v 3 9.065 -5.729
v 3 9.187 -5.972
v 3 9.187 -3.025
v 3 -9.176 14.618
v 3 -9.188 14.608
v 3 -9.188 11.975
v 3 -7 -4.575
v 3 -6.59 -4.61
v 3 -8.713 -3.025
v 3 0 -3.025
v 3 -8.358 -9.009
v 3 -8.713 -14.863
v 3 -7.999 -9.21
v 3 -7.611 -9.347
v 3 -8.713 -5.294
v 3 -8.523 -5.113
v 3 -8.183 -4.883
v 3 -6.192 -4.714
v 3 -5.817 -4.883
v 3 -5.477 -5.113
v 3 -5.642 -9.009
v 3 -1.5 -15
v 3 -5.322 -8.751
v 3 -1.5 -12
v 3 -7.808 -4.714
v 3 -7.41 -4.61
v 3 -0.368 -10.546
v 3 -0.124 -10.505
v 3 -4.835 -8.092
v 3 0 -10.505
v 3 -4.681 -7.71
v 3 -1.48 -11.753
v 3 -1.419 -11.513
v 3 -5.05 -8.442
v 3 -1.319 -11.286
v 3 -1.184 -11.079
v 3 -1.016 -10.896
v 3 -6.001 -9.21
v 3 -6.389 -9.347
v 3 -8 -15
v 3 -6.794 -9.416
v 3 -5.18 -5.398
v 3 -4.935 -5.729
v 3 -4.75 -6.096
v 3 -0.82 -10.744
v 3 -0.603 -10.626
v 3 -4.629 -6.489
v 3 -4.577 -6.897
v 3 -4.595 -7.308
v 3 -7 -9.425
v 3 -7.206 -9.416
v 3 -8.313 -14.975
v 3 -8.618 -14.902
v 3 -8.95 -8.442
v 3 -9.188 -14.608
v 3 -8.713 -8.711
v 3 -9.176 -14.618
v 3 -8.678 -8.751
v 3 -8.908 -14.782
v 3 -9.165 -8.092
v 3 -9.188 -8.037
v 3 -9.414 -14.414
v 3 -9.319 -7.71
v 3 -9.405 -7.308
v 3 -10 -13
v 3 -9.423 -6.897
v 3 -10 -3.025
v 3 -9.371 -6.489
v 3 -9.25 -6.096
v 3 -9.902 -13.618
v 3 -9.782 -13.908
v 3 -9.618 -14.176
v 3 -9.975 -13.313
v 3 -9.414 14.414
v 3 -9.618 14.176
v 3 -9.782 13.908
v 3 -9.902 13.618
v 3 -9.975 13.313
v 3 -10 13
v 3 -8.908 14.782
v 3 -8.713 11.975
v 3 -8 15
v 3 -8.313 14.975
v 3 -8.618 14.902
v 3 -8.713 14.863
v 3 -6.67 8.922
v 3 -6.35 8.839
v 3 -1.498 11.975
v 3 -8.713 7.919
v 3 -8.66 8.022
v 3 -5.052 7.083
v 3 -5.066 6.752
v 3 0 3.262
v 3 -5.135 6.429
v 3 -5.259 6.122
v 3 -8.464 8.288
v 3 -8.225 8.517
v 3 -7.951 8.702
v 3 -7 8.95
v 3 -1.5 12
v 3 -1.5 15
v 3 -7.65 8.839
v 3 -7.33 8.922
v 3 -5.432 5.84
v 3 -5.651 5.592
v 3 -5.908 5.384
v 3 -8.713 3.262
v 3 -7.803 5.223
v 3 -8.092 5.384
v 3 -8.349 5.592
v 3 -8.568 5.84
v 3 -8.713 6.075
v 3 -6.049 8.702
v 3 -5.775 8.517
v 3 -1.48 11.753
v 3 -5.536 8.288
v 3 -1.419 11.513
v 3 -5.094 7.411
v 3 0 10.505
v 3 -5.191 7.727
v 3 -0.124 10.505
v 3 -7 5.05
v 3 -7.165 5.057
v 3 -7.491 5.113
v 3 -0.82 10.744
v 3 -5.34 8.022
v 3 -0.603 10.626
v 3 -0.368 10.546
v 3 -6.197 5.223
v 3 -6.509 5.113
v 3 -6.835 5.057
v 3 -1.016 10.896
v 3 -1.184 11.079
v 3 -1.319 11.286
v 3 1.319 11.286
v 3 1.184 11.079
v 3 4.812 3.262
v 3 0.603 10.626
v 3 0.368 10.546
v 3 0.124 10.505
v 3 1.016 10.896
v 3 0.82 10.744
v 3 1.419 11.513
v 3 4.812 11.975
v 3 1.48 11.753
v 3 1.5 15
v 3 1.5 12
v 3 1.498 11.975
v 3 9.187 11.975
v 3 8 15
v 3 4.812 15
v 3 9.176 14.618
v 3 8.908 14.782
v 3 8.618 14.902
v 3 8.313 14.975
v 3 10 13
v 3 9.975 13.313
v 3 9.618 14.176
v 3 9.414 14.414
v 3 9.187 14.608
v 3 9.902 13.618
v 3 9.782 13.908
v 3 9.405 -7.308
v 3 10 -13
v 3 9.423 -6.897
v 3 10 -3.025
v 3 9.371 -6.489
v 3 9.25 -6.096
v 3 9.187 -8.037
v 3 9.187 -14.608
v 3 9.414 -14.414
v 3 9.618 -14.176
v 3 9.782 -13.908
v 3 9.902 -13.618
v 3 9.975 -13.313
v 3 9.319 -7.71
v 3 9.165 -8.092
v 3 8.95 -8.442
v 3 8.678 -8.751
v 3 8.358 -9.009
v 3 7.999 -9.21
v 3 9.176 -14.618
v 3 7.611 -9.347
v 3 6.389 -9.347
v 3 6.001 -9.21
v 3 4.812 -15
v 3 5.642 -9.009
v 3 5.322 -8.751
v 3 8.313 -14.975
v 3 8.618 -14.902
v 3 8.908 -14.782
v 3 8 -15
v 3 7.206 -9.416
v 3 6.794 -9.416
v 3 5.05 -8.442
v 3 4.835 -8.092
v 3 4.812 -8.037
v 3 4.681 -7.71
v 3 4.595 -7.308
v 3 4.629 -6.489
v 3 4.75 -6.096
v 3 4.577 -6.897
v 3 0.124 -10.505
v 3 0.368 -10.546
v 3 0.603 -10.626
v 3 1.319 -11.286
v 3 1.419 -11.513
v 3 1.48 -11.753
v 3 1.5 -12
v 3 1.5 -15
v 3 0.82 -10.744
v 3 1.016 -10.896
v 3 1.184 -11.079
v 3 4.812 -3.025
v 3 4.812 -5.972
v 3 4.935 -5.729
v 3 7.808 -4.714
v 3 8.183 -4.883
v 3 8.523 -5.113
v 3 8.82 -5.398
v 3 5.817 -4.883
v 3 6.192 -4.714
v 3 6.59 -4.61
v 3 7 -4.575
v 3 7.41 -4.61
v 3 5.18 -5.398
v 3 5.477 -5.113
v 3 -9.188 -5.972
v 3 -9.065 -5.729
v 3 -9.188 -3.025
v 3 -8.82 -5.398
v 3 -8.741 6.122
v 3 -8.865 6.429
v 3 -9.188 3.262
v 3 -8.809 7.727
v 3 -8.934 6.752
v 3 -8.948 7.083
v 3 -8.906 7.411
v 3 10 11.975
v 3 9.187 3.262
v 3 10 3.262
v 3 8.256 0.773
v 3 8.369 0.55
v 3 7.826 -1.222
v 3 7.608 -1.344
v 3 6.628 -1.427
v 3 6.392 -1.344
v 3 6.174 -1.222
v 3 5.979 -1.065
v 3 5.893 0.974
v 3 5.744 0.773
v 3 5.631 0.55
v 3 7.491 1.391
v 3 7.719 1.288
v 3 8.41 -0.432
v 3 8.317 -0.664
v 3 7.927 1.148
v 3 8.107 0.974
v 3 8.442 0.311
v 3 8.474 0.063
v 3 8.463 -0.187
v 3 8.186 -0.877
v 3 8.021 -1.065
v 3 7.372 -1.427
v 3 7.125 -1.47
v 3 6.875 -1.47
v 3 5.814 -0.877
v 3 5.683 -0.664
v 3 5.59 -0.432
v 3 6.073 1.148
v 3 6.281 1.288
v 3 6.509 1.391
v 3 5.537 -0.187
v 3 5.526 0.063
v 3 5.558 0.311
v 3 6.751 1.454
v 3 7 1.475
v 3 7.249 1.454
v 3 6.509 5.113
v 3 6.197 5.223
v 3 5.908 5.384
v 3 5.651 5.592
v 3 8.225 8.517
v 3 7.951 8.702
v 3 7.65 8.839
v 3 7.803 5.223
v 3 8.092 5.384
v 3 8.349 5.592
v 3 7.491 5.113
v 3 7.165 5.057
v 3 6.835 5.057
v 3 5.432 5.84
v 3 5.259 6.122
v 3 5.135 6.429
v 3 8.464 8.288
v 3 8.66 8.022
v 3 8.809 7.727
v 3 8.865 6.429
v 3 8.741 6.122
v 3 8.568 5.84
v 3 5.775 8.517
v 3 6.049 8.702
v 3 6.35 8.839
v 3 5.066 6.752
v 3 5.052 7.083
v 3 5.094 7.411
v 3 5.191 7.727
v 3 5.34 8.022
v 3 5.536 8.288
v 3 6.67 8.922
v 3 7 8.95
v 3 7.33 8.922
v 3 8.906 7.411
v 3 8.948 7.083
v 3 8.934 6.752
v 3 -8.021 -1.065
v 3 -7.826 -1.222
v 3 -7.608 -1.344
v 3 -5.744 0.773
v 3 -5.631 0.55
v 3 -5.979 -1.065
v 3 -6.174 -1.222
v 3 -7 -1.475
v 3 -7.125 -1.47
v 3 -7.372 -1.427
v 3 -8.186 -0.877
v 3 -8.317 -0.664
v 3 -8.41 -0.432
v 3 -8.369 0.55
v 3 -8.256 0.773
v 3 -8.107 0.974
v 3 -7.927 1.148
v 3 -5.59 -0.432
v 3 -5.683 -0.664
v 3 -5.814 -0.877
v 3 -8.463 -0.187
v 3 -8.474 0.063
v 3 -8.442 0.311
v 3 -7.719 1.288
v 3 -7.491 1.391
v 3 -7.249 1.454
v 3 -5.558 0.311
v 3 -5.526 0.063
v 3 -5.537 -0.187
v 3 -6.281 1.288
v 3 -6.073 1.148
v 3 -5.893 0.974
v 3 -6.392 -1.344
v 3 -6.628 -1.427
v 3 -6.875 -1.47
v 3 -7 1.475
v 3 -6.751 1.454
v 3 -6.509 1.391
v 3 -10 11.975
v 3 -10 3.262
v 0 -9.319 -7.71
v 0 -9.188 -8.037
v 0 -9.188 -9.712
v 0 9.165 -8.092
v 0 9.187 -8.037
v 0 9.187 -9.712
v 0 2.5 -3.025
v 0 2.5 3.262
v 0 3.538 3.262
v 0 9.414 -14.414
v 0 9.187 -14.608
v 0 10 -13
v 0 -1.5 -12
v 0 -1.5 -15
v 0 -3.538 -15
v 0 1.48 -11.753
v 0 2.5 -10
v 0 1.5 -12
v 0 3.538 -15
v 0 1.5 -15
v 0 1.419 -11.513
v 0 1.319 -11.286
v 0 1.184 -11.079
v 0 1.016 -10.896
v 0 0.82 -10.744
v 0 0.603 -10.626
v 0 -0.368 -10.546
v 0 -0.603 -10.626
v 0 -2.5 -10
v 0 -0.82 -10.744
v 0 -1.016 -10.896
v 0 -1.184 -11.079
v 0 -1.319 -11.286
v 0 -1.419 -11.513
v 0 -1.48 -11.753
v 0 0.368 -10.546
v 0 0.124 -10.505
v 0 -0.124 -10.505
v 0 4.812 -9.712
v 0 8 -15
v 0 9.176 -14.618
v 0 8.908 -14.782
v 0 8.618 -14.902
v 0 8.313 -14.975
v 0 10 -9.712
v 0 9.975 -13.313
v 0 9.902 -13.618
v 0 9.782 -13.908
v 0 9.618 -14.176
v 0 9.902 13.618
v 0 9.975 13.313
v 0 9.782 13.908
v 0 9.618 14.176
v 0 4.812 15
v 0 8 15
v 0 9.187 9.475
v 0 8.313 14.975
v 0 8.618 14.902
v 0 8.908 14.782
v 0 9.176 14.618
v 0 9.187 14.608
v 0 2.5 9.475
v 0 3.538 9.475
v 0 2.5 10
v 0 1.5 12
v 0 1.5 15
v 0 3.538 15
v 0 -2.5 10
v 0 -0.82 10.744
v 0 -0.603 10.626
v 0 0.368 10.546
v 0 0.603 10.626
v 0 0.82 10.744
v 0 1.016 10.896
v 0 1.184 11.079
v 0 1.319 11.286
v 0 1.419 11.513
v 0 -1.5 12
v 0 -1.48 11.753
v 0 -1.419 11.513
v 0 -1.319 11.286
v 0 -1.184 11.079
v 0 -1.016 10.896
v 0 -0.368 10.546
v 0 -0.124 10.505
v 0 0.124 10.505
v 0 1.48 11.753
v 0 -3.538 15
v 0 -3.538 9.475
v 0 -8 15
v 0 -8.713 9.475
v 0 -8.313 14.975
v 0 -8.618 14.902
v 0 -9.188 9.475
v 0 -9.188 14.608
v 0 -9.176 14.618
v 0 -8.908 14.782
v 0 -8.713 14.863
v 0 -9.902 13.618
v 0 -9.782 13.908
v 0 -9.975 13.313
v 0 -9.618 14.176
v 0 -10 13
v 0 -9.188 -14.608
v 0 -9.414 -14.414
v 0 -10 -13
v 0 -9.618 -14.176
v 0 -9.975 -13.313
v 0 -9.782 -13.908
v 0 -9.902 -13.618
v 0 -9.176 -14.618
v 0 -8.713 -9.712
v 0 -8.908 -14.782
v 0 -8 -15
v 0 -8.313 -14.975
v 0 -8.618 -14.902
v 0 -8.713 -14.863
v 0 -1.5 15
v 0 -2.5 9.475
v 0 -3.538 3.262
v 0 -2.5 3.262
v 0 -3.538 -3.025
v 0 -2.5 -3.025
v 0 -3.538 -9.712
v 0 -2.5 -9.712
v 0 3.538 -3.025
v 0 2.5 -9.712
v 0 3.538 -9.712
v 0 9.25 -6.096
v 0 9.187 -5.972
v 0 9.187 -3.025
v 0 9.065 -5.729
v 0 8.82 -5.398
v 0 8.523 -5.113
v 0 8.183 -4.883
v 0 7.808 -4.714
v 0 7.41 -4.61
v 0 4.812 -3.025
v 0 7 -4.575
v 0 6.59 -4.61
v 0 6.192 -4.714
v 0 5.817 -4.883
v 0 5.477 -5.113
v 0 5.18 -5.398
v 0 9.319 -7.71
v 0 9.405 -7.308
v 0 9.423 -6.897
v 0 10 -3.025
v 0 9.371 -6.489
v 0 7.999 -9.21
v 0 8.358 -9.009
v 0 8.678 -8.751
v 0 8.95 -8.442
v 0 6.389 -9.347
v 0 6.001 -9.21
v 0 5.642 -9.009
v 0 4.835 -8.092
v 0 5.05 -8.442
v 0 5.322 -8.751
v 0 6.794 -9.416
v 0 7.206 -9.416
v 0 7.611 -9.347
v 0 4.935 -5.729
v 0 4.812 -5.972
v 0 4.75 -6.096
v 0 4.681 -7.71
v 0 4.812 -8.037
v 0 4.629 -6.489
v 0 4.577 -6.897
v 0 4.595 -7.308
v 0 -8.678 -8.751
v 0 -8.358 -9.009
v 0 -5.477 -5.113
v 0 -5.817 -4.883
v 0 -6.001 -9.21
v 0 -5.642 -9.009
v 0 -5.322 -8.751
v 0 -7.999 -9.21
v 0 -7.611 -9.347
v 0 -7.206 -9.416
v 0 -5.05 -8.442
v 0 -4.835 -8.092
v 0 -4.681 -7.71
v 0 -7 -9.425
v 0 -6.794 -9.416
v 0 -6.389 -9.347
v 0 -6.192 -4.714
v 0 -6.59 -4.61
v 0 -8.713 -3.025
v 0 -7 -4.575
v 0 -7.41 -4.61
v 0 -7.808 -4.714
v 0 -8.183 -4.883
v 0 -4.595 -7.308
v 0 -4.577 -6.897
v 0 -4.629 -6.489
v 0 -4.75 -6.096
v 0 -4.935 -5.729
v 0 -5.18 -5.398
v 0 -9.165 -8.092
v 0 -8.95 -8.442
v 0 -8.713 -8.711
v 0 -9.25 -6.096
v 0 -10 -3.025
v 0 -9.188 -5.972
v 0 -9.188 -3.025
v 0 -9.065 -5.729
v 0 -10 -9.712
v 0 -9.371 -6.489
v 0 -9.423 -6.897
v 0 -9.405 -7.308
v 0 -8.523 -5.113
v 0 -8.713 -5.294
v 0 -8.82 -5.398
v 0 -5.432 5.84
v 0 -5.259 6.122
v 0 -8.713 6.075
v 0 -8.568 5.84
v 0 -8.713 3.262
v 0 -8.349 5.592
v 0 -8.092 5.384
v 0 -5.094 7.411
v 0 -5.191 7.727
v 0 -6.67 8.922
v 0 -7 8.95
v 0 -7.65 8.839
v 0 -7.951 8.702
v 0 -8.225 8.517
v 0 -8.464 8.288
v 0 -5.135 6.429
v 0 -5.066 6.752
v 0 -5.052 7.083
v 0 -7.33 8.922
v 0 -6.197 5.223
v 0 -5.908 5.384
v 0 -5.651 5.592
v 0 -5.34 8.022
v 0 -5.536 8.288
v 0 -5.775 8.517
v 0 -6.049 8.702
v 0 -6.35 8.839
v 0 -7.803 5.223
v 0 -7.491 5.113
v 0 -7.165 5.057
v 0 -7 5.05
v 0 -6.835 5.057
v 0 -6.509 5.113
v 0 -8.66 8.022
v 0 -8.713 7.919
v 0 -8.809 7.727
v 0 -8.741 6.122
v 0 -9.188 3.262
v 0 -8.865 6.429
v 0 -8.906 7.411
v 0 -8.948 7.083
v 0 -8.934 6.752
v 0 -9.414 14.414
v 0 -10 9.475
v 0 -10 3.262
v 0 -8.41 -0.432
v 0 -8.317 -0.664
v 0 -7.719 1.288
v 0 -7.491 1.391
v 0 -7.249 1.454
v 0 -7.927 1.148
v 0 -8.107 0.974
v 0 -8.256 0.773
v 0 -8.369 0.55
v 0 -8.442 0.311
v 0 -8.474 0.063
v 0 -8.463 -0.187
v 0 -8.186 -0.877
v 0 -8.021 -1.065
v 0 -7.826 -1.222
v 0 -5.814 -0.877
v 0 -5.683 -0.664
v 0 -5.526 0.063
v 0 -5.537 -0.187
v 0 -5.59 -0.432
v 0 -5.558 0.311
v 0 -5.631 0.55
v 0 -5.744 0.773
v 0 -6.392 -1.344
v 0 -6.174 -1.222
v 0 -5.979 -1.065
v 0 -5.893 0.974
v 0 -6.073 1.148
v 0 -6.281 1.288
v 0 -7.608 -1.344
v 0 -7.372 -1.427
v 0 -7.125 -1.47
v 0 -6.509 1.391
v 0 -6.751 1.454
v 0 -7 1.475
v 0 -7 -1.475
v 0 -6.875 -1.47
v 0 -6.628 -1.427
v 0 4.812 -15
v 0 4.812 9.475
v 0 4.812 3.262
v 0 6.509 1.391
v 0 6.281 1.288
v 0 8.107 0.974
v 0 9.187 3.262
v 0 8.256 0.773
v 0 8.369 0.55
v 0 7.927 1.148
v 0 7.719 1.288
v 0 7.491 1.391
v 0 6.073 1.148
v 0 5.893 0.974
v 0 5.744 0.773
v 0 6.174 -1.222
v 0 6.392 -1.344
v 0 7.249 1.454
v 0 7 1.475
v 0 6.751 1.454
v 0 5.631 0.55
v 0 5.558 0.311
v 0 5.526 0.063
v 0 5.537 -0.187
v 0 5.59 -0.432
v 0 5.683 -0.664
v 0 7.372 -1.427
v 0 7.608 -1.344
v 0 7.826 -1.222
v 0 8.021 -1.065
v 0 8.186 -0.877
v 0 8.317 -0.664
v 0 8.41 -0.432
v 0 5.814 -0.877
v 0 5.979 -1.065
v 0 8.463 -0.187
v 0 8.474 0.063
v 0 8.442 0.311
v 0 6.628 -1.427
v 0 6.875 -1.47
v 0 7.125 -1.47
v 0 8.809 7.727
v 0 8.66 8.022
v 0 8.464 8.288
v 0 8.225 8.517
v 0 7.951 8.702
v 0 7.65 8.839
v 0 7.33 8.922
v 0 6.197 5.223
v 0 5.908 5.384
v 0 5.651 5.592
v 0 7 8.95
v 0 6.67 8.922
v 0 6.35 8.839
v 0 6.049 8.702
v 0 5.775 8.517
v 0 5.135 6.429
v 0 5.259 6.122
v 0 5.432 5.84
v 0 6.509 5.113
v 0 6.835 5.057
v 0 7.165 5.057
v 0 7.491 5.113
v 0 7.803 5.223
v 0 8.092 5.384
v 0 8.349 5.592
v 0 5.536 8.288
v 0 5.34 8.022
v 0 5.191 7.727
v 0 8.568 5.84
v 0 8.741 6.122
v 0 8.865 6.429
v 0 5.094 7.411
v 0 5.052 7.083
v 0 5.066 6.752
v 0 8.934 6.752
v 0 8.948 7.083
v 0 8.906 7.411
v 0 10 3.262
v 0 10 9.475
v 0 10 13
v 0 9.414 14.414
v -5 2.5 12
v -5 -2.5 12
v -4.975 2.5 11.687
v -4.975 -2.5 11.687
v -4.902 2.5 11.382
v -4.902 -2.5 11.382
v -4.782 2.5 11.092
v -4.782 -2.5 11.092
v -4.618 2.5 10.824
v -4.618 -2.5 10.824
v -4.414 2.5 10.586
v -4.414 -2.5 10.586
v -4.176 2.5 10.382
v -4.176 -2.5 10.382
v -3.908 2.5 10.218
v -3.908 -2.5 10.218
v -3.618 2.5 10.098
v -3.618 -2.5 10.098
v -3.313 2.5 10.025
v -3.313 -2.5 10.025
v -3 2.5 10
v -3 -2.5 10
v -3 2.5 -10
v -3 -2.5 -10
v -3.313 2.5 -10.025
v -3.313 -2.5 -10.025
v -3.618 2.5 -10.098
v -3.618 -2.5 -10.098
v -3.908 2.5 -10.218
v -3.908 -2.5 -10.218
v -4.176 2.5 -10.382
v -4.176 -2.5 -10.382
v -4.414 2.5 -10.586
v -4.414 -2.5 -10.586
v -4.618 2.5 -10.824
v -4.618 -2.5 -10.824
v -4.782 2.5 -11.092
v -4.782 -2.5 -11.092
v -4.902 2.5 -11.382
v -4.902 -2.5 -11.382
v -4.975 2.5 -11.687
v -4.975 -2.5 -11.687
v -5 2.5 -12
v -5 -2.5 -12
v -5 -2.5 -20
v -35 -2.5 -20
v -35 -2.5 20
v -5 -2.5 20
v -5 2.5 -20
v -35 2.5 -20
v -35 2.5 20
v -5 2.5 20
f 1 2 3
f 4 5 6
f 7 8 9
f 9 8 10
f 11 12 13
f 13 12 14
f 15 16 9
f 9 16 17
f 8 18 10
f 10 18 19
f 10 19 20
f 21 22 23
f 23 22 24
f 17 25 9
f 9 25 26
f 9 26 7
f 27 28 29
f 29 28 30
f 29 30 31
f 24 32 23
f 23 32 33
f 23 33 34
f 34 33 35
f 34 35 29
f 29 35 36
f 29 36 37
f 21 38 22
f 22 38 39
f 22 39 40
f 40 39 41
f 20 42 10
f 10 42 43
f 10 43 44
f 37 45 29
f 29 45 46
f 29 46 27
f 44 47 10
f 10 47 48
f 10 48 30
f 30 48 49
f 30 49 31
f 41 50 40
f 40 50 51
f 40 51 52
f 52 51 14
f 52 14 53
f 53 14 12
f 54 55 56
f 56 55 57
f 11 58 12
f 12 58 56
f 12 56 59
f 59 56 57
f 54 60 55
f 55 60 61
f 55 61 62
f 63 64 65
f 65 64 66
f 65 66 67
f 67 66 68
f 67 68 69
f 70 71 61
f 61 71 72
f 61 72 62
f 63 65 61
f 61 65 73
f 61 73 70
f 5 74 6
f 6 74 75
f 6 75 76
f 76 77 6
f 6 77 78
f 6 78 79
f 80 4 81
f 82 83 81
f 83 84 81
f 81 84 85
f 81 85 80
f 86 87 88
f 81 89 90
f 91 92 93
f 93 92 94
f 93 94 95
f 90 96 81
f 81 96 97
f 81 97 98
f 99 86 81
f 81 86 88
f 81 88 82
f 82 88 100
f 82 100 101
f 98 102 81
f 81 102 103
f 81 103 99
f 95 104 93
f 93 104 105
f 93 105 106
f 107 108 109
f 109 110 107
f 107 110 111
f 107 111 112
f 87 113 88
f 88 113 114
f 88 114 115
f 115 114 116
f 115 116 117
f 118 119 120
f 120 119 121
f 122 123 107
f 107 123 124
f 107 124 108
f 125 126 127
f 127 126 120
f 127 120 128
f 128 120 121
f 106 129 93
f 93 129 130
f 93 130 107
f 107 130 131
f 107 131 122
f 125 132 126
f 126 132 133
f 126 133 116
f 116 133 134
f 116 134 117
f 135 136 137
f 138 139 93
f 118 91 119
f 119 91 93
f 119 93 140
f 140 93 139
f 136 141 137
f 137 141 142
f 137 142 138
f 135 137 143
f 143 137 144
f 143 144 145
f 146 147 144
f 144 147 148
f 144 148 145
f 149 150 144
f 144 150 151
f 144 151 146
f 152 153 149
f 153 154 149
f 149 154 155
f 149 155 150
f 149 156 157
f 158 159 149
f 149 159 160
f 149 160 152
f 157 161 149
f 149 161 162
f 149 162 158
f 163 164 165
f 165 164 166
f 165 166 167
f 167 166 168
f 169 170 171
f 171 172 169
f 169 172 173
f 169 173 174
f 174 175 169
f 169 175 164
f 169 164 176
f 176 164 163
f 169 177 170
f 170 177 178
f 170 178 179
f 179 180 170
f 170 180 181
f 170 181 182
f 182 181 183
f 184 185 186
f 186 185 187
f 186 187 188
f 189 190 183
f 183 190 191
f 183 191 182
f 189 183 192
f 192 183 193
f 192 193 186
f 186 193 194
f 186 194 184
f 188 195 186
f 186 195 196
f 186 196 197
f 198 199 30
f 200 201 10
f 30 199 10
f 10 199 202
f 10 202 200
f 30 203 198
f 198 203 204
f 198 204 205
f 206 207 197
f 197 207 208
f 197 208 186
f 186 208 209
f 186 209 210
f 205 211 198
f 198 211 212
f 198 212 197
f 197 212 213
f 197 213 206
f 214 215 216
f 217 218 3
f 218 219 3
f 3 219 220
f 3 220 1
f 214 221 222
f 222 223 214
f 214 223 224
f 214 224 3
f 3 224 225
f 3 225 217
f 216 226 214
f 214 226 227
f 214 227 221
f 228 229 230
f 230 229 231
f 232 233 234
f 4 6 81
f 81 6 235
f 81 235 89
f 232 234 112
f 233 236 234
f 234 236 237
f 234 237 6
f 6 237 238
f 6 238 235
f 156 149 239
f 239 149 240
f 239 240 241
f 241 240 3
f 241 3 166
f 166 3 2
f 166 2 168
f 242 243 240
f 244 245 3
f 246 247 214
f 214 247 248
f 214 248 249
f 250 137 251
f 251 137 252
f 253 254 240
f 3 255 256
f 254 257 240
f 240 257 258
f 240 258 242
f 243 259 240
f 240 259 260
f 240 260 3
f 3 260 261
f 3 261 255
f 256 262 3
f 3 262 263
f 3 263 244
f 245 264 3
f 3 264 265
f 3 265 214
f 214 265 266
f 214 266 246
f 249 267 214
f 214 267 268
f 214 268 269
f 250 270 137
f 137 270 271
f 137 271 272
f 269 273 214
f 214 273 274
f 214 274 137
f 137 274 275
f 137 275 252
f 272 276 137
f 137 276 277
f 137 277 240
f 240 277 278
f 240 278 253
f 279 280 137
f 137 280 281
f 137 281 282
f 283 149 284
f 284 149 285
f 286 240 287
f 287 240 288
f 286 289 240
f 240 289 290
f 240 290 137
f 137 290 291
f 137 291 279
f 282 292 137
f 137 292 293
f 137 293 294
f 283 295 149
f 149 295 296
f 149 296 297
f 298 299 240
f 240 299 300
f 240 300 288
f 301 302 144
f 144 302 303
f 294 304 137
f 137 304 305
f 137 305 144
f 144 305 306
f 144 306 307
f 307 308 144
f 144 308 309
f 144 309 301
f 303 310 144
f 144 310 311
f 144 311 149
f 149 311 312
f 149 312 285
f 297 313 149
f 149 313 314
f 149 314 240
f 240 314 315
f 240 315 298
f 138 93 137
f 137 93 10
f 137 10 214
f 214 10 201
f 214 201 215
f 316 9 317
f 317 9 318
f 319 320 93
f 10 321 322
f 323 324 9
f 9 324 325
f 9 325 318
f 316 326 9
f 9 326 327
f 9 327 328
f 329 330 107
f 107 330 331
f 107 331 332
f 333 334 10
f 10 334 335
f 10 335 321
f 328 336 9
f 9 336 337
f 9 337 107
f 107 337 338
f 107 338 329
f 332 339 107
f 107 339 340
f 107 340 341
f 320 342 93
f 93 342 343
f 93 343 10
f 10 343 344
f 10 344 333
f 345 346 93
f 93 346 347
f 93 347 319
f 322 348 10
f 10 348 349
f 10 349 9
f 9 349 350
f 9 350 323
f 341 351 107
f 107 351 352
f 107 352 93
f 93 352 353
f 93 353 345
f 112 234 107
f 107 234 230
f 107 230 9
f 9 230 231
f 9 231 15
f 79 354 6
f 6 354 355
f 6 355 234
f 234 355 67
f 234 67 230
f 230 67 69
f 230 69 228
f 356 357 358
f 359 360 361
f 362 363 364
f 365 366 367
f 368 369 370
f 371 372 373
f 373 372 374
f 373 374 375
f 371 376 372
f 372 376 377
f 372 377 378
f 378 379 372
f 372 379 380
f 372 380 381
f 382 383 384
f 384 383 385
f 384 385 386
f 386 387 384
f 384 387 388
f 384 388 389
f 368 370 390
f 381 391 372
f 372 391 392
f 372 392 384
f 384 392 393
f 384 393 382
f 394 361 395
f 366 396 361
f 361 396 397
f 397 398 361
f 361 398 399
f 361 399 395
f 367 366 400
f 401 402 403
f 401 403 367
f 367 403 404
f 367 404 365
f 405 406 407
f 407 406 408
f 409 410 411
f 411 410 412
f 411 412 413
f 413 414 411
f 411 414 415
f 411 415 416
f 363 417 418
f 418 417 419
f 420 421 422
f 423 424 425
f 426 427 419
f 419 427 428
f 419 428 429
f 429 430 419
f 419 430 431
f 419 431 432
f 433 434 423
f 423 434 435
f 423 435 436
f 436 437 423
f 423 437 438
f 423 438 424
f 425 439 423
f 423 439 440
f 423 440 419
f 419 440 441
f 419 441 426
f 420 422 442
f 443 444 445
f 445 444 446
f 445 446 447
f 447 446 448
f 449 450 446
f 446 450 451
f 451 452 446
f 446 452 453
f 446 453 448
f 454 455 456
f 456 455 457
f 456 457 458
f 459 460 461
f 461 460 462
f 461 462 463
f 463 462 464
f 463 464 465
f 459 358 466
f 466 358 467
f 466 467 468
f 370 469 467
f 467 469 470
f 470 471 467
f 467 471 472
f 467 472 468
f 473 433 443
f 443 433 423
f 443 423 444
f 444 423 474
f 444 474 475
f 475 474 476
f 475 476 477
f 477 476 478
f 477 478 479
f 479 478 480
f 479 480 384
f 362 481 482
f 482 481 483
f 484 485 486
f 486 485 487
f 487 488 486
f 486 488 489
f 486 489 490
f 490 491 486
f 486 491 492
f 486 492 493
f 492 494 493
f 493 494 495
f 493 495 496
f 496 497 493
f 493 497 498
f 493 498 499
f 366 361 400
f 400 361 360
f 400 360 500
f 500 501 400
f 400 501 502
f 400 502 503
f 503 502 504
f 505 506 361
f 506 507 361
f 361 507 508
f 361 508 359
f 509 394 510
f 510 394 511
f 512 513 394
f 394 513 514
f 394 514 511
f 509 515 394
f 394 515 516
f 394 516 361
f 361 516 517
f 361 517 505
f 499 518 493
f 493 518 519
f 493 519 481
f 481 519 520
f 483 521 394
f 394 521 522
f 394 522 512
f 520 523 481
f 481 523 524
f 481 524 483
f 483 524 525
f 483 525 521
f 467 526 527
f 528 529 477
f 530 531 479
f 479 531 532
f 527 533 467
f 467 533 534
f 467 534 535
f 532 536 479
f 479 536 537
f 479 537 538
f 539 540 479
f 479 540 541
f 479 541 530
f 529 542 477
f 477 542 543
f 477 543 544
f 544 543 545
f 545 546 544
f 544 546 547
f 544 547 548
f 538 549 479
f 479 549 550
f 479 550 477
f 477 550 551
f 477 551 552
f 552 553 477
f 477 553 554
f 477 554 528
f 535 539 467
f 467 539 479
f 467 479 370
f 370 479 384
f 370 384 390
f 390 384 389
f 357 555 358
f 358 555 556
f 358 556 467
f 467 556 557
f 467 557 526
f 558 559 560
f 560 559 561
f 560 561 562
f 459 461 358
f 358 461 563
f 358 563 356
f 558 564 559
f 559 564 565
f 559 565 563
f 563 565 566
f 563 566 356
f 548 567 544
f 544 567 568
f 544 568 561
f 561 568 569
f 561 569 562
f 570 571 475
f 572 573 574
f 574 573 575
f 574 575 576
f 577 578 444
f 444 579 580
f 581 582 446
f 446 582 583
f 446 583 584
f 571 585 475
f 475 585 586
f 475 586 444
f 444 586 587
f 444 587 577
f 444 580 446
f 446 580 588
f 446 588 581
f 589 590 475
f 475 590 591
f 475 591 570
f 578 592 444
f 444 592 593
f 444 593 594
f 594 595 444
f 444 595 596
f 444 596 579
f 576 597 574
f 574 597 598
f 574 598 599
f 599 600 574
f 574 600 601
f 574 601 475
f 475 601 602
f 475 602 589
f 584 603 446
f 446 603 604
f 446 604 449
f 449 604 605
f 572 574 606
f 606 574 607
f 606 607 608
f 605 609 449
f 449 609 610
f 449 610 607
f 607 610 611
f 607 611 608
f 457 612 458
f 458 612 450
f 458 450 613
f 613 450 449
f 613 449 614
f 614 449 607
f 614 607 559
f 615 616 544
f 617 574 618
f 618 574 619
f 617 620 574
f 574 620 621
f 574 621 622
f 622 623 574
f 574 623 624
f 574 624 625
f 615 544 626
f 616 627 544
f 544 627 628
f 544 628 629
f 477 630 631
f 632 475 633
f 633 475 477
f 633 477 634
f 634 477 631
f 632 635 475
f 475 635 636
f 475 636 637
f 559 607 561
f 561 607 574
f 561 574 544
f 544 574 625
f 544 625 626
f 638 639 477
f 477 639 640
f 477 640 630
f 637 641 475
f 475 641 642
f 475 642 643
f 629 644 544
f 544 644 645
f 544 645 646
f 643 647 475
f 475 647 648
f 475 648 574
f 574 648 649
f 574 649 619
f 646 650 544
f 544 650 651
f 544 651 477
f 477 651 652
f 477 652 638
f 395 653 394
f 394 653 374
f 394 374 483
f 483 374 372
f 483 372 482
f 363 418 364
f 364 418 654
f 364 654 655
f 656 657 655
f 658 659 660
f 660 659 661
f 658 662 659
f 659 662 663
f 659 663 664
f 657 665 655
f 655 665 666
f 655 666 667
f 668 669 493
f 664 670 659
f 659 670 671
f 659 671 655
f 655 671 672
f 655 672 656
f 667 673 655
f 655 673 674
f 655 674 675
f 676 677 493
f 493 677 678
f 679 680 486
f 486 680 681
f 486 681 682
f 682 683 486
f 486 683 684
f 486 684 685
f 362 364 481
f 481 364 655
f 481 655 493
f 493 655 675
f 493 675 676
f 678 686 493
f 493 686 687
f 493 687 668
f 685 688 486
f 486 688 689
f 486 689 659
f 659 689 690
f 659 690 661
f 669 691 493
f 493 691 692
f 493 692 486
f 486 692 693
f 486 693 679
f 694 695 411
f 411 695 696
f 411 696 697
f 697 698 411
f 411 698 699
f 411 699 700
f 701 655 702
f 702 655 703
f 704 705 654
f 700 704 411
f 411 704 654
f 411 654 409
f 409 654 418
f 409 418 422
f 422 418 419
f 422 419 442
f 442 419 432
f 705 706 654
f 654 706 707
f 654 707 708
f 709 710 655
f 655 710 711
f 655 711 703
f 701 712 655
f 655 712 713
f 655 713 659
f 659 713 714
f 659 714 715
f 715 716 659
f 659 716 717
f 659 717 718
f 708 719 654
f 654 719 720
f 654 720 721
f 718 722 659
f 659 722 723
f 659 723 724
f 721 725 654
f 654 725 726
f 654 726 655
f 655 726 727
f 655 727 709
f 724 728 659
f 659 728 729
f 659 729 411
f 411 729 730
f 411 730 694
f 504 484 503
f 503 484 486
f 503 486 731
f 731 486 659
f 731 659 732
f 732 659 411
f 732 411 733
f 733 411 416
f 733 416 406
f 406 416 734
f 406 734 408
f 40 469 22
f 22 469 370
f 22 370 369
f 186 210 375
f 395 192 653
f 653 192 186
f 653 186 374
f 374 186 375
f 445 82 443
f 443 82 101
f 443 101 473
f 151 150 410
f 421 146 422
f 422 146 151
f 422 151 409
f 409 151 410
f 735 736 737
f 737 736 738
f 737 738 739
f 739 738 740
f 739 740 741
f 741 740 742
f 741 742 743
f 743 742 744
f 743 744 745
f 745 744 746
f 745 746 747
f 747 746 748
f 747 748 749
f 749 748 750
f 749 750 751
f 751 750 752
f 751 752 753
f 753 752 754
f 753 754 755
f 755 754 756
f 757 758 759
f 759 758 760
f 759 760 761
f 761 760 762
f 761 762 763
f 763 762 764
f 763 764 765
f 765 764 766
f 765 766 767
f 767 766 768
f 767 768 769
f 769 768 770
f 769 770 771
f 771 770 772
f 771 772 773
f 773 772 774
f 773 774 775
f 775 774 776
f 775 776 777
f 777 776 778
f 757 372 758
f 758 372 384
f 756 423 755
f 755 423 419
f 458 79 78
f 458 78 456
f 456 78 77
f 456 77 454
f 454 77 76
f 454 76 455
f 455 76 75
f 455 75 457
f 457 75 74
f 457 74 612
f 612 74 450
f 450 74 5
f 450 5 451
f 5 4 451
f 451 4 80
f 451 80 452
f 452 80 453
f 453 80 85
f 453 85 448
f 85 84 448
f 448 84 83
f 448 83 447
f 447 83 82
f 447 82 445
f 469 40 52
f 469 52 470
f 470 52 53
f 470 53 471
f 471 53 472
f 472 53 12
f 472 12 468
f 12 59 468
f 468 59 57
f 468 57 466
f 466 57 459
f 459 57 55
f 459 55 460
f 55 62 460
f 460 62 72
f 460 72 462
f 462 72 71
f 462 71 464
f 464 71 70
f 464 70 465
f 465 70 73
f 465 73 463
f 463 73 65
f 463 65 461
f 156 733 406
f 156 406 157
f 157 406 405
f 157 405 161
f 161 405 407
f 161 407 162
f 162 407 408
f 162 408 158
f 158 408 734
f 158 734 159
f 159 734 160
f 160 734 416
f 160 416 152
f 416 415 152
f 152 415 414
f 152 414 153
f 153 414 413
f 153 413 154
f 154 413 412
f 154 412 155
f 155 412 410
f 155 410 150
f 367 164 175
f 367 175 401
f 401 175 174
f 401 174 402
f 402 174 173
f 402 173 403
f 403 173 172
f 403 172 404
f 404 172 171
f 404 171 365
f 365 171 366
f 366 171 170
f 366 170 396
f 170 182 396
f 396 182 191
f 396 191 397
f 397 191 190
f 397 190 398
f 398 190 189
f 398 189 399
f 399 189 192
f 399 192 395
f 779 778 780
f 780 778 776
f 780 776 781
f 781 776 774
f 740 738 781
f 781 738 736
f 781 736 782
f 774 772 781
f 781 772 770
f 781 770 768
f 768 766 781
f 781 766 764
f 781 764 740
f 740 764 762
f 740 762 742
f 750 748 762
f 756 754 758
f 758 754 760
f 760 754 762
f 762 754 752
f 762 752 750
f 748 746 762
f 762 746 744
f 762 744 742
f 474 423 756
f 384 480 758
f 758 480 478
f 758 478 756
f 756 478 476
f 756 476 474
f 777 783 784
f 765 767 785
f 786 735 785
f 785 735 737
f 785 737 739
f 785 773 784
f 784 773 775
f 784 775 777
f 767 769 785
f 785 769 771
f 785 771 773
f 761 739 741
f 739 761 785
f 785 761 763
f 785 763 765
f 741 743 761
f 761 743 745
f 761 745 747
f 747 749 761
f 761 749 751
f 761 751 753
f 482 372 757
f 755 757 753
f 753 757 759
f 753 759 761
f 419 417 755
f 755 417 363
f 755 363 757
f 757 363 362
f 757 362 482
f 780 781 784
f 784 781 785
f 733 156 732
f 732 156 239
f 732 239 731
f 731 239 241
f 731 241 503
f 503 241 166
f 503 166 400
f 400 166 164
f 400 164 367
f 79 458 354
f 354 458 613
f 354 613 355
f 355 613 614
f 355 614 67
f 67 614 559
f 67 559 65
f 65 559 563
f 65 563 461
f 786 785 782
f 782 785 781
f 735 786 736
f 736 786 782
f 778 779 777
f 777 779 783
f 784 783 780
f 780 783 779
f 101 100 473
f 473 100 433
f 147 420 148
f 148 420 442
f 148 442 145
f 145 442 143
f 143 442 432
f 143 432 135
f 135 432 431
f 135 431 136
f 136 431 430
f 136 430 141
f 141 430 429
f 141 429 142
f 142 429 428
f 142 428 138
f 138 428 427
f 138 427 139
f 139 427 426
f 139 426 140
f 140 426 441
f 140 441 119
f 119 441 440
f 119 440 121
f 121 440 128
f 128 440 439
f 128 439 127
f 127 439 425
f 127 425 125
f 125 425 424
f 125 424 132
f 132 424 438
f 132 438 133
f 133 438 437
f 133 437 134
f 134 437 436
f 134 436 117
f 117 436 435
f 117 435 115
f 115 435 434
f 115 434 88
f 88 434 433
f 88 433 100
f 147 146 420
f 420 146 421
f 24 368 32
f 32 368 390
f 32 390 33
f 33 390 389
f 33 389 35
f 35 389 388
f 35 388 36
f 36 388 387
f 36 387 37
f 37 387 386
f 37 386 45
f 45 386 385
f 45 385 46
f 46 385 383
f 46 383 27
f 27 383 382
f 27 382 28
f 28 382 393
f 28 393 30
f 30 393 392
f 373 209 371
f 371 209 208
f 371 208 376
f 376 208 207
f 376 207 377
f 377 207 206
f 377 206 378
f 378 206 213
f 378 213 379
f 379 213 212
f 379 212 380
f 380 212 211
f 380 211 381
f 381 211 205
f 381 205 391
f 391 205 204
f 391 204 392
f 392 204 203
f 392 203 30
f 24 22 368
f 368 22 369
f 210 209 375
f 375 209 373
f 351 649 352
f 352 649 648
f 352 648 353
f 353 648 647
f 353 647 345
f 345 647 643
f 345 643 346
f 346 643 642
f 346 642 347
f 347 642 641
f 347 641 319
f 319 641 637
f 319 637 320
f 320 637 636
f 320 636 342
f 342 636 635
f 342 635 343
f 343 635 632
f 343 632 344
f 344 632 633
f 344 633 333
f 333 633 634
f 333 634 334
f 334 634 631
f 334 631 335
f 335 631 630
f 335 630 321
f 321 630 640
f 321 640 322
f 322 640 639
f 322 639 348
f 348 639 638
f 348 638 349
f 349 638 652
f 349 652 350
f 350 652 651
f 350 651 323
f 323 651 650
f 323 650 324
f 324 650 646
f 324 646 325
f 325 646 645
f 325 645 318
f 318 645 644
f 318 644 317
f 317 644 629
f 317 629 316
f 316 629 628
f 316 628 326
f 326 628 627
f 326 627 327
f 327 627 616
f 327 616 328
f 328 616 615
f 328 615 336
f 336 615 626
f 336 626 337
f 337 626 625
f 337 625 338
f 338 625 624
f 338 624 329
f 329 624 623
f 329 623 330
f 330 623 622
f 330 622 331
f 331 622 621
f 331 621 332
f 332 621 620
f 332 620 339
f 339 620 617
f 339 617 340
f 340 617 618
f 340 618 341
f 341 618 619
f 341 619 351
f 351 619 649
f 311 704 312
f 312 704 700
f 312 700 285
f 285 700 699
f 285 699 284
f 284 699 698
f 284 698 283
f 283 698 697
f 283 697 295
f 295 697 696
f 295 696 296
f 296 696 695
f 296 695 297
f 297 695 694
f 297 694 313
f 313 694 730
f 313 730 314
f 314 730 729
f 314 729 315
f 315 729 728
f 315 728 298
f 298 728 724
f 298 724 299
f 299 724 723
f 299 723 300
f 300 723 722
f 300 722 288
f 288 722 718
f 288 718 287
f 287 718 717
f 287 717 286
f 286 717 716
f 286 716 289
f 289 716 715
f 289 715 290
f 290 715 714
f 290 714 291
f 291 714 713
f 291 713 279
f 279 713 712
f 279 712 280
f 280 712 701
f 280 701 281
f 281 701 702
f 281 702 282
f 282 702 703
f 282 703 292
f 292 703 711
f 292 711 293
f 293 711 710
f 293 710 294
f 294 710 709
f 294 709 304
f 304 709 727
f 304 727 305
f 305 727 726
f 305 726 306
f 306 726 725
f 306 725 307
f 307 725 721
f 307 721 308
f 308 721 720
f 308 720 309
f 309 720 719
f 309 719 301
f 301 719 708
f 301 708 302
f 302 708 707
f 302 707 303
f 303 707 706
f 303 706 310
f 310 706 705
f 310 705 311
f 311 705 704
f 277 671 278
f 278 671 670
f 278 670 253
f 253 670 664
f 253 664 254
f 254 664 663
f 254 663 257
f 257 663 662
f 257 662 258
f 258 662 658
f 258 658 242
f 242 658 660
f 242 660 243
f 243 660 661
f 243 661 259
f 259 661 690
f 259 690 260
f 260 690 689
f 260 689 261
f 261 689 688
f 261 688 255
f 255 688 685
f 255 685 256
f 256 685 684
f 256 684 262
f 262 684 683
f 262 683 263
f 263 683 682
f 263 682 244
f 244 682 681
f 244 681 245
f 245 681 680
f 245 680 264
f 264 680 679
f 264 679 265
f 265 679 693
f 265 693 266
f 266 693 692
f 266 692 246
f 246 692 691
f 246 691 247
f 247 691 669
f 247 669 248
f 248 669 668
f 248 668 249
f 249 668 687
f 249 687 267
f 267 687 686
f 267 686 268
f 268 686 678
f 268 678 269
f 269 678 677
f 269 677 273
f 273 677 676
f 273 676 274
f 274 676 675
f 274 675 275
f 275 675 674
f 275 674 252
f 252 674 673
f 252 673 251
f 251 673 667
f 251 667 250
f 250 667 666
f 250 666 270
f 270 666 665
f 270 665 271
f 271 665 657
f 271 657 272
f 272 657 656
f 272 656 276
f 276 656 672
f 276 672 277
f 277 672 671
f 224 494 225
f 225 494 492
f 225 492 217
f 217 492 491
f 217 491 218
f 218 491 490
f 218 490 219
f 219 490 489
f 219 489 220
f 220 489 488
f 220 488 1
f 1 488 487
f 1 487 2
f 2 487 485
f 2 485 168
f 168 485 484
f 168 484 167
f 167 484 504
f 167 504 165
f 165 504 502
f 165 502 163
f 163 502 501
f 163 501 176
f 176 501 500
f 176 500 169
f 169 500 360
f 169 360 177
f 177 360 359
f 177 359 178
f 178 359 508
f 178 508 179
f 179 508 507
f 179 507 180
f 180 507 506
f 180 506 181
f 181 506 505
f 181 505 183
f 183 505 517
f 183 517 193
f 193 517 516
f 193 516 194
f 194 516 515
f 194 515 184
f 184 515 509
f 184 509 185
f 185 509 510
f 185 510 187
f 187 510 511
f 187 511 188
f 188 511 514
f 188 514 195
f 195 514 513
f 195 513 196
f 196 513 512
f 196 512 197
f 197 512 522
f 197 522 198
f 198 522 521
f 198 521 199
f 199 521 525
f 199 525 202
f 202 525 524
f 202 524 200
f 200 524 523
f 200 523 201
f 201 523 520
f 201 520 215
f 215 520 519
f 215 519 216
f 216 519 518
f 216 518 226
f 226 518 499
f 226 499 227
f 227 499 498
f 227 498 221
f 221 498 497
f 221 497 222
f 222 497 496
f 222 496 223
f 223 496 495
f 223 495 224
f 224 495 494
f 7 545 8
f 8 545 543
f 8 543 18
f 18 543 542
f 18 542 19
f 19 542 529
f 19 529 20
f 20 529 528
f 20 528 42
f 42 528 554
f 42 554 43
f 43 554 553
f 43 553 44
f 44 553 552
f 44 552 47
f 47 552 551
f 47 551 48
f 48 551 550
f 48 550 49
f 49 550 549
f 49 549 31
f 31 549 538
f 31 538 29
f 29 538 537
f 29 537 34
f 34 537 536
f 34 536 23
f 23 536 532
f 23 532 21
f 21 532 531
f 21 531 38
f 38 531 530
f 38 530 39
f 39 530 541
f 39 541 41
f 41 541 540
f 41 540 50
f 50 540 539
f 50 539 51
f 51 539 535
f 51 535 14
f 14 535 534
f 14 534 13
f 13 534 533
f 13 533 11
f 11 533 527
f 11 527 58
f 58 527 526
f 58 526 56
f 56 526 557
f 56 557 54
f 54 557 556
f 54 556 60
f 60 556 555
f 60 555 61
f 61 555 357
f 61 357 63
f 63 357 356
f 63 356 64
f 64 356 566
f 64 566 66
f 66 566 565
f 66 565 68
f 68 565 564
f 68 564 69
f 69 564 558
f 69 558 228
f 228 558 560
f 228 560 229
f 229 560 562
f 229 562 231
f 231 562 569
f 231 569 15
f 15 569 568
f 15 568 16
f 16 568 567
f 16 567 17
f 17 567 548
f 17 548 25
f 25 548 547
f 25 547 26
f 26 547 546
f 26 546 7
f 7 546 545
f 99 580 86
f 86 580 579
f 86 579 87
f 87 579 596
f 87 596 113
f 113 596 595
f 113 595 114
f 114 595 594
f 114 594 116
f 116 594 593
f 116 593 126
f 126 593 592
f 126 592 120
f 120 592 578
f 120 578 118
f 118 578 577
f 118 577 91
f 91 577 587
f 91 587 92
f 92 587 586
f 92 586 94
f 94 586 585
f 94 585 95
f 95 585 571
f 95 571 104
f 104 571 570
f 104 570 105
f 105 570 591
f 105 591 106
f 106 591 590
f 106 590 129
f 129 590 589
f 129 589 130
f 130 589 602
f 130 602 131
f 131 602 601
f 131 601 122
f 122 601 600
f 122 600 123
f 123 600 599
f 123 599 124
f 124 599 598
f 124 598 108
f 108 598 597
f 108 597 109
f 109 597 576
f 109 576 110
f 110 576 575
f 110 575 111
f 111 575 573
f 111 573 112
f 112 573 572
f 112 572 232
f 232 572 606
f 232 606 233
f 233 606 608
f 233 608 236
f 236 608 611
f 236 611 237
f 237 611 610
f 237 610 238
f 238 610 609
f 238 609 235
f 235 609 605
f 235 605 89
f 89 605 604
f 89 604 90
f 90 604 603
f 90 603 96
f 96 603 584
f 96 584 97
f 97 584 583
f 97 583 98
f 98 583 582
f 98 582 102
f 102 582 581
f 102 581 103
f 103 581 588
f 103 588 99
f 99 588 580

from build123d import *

# Parameters (mm, degrees)
SKETCH_1_W          = 20
SKETCH_1_H          = 5
EXTRUDE_1_DEPTH     = 35
SKETCH_2_W          = 30
SKETCH_2_H          = 20
EXTRUDE_2_DEPTH     = 3
FILLET_1_R          = 2
FILLET_2_R          = 2
FILLET_3_R          = 2
FILLET_4_R          = 2
SKETCH_4_W          = 30
SKETCH_4_H          = 40
EXTRUDE_3_DEPTH     = 2.5
FILLET_5_R          = 2
FILLET_6_R          = 2
CUT_EXTRUDE_2_DEPTH = 3
SKETCH_6_R          = 1.475
SKETCH_6_R_2        = 1.95
SKETCH_6_R_3        = 2.425
CUT_EXTRUDE_3_DEPTH = 3


with BuildPart() as part:
    # 草图1 → 凸台-拉伸1 (new body)
    with BuildSketch(Plane(origin=(0, 0, 0), x_dir=(0, 0, -1), z_dir=(1, 0, 0))):
        Rectangle(SKETCH_1_W, SKETCH_1_H)
    extrude(amount=-EXTRUDE_1_DEPTH)

    # 草图2 → 凸台-拉伸2 (add)
    with BuildSketch(Plane(origin=(0, 0, 0), x_dir=(0, 0, -1), z_dir=(1, 0, 0))):
        Rectangle(SKETCH_2_W, SKETCH_2_H)
    extrude(amount=EXTRUDE_2_DEPTH)

    # 圆角1
    fillet_1_edges = [part.edges().sort_by_distance(p)[0] for p in [
        (1.5, 10, -15),
    ]]
    fillet(fillet_1_edges, radius=FILLET_1_R)

    # 圆角2
    fillet_2_edges = [part.edges().sort_by_distance(p)[0] for p in [
        (1.5, 10, 15),
    ]]
    fillet(fillet_2_edges, radius=FILLET_2_R)

    # 圆角3
    fillet_3_edges = [part.edges().sort_by_distance(p)[0] for p in [
        (1.5, -10, -15),
    ]]
    fillet(fillet_3_edges, radius=FILLET_3_R)

    # 圆角4
    fillet_4_edges = [part.edges().sort_by_distance(p)[0] for p in [
        (1.5, -10, 15),
    ]]
    fillet(fillet_4_edges, radius=FILLET_4_R)

    # 草图4 → 凸台-拉伸3 (add, symmetric)
    with BuildSketch(Plane(origin=(0, 0, 0), x_dir=(1, 0, 0), z_dir=(0, 1, 0))):
        with Locations((-20, 0)):
            Rectangle(SKETCH_4_W, SKETCH_4_H)
    extrude(amount=EXTRUDE_3_DEPTH, both=True)

    # 圆角5
    fillet_5_edges = [part.edges().sort_by_distance(p)[0] for p in [
        (-5, 0, -10),
    ]]
    fillet(fillet_5_edges, radius=FILLET_5_R)

    # 圆角6
    fillet_6_edges = [part.edges().sort_by_distance(p)[0] for p in [
        (-5, 0, 10),
    ]]
    fillet(fillet_6_edges, radius=FILLET_6_R)

    # 草图5 → 切除-拉伸2 (cut)
    with BuildSketch(Plane(origin=(0, 0, 0), x_dir=(0, 0, -1), z_dir=(1, 0, 0))):
        with BuildLine():
            Line((-12, -1.5), (-15, -1.5))
            Line((-15, -1.5), (-15, 1.5))
            Line((-15, 1.5), (-12, 1.5))
            ThreePointArc((-12, 1.5), (-10.5, 0), (-12, -1.5))
        make_face()
        with BuildLine():
            Line((12, 1.5), (15, 1.5))
            Line((15, 1.5), (15, -1.5))
            Line((15, -1.5), (12, -1.5))
            ThreePointArc((12, -1.5), (10.5, 0), (12, 1.5))
        make_face()
    extrude(amount=CUT_EXTRUDE_2_DEPTH, mode=Mode.SUBTRACT)

    # 草图6 → 切除-拉伸3 (cut)
    with BuildSketch(Plane(origin=(0, 0, 0), x_dir=(0, 0, -1), z_dir=(1, 0, 0))):
        with Locations((0, -7)):
            Circle(SKETCH_6_R)
        with Locations((-7, -7)):
            Circle(SKETCH_6_R_2)
        with Locations((7, -7)):
            Circle(SKETCH_6_R_3)
        with Locations(Location((7, 7, 0), (0, 0, 180))):
            Circle(SKETCH_6_R_3)
        with Locations(Location((0, 7, 0), (0, 0, 180))):
            Circle(SKETCH_6_R)
        with Locations(Location((-7, 7, 0), (0, 0, 180))):
            Circle(SKETCH_6_R_2)
    extrude(amount=CUT_EXTRUDE_3_DEPTH, mode=Mode.SUBTRACT)


solid = part.part
